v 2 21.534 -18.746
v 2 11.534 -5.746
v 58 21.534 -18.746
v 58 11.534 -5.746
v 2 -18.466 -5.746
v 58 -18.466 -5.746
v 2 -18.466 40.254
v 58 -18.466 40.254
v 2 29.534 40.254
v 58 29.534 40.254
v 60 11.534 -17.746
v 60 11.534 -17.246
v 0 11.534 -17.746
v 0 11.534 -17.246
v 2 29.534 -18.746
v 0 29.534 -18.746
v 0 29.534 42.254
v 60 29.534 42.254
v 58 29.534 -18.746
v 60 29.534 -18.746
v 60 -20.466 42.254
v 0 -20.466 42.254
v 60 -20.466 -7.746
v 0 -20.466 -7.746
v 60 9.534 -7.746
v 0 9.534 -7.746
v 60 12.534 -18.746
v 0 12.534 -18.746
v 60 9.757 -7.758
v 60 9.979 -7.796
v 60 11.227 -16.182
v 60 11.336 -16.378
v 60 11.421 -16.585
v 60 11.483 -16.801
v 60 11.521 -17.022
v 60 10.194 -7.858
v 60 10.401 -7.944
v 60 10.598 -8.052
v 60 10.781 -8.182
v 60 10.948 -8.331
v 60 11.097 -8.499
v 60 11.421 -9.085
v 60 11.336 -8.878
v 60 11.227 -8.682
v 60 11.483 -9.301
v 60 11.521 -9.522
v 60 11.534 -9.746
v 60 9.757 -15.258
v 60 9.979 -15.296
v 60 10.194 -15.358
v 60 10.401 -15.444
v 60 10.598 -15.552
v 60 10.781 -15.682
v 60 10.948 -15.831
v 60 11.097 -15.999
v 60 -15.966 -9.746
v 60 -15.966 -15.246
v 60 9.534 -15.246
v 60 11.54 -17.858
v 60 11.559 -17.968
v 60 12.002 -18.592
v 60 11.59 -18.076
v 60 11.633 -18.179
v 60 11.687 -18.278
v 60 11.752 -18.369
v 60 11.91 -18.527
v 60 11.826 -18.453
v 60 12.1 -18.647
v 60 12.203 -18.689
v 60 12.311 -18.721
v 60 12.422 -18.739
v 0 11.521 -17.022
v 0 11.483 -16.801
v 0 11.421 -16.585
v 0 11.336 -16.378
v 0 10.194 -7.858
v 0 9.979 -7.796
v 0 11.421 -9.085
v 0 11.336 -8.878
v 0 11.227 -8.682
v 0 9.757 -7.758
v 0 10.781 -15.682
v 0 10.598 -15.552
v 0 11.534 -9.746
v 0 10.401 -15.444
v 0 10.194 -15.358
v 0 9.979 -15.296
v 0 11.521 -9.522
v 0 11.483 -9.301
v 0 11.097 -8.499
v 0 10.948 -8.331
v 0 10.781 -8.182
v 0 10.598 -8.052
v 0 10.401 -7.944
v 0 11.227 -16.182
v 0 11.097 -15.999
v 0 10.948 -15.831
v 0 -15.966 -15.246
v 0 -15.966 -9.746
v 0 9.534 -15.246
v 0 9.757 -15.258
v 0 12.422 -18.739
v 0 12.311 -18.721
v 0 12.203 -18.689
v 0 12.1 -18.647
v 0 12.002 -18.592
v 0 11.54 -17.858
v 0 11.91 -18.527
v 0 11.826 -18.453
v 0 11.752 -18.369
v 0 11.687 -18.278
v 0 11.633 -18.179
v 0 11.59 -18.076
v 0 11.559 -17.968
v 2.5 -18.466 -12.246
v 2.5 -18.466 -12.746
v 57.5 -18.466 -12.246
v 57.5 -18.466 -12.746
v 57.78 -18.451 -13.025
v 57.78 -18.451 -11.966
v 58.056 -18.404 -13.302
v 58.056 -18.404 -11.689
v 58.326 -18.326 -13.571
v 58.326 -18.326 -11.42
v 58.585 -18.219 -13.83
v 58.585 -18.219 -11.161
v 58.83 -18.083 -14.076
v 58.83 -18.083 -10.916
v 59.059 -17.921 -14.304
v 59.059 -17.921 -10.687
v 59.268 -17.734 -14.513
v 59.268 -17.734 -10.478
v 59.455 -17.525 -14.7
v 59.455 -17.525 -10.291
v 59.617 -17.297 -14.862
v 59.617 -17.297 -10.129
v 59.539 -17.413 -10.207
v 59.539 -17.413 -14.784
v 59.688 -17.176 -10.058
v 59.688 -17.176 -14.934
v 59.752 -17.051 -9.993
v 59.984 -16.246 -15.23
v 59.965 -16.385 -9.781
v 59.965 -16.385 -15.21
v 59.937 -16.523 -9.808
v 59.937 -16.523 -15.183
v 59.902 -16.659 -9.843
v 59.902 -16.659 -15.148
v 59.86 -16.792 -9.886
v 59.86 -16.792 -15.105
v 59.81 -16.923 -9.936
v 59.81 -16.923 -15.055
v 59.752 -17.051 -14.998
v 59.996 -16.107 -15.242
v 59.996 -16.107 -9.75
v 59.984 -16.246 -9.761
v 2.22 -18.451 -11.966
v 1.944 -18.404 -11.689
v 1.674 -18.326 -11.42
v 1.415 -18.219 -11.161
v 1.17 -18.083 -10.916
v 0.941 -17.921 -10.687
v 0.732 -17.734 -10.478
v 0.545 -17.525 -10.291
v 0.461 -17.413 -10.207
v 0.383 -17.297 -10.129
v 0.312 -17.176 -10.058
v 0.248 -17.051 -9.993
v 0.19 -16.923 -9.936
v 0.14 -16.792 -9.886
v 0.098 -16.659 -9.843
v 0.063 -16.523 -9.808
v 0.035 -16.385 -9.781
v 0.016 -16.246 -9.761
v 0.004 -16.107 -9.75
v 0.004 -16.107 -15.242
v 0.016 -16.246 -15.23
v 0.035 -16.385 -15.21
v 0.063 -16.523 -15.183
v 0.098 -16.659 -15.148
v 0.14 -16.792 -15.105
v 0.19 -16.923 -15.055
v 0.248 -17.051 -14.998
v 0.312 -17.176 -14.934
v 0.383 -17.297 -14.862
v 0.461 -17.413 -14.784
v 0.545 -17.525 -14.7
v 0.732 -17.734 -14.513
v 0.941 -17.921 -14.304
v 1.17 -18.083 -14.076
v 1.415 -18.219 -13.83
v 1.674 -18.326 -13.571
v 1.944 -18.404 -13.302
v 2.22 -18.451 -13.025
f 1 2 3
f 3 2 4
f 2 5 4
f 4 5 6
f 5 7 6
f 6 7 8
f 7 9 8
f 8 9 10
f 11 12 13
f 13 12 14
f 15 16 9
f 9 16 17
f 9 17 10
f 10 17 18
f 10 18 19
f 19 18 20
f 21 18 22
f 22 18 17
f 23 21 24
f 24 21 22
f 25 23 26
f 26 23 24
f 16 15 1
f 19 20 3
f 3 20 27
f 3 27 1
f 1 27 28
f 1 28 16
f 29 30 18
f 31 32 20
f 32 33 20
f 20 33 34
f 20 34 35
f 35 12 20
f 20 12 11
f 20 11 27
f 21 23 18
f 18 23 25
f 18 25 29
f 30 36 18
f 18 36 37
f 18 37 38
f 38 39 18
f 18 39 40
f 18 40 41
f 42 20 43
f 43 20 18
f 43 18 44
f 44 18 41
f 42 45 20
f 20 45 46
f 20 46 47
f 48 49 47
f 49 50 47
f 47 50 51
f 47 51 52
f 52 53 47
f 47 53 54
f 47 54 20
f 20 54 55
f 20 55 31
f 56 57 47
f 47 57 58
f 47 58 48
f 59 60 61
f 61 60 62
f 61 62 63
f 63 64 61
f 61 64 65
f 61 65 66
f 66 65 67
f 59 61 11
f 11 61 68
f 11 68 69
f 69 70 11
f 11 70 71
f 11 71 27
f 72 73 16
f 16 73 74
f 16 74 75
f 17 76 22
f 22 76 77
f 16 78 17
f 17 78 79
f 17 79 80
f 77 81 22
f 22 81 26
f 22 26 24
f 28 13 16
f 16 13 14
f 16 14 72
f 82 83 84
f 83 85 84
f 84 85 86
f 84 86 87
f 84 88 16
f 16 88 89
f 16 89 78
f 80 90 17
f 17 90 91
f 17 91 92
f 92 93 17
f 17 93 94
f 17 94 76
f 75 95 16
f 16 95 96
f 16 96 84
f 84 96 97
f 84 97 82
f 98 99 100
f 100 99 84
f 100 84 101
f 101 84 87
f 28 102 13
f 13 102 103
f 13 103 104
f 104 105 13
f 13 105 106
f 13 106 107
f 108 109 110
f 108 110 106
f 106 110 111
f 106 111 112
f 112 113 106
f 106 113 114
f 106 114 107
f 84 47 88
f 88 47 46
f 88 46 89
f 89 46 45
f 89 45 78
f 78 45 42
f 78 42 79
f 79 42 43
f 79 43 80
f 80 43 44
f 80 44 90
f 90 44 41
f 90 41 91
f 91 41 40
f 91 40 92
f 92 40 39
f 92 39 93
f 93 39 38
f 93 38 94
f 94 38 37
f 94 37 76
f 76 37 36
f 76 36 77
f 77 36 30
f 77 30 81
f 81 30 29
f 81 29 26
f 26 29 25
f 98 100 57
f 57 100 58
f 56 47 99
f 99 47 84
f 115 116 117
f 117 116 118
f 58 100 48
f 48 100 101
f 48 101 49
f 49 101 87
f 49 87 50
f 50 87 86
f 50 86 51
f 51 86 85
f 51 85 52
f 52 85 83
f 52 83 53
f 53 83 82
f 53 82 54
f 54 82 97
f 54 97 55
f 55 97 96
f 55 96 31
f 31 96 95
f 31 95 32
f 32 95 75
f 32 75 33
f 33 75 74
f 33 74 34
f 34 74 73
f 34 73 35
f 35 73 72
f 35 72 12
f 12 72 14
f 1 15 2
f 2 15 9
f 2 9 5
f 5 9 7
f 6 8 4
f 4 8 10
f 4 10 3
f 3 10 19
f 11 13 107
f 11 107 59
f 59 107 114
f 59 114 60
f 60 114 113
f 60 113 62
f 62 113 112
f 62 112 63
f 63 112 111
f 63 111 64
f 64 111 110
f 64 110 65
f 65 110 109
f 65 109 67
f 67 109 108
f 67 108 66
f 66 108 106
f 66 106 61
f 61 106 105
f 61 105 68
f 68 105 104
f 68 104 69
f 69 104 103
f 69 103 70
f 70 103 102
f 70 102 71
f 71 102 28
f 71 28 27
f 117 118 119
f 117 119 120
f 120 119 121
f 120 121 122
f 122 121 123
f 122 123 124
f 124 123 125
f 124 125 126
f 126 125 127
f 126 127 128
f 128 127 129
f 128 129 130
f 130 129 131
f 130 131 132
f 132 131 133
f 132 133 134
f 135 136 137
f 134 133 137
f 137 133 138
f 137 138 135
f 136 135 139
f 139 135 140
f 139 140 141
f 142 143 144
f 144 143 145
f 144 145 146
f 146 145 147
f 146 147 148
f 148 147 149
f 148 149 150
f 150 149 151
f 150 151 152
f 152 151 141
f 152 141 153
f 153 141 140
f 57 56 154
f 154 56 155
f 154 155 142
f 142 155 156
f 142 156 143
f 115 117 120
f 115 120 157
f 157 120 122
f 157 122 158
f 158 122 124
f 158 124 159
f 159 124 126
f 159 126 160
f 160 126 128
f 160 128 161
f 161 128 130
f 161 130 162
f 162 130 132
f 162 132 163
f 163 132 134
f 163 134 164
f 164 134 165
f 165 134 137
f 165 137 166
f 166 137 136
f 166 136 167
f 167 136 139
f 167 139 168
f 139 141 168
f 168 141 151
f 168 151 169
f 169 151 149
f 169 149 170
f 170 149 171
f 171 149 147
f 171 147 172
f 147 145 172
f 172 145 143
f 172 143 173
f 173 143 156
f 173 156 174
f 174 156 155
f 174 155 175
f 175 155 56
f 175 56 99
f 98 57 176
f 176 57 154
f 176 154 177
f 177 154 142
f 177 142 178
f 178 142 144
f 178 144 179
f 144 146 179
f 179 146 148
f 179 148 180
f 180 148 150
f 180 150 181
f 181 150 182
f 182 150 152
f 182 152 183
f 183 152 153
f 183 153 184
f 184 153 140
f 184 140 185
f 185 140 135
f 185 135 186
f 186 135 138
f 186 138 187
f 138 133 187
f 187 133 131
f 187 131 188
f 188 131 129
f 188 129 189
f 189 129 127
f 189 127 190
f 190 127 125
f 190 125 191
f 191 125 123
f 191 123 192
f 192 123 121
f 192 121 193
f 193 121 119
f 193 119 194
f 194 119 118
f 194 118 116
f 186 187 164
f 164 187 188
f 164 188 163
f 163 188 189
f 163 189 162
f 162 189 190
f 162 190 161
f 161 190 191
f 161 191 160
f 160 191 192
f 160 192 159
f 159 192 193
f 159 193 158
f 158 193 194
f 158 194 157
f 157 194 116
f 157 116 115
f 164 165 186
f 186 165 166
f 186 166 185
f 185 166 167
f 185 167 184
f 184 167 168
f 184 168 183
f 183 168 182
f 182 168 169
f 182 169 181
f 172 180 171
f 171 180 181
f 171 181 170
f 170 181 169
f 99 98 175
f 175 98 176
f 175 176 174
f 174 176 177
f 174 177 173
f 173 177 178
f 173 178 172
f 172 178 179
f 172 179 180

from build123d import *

# Parameters (mm, degrees)
EXTRUDE_1_DEPTH = 60
FILLET_1_R      = 2
SKETCH_2_W      = 60
SKETCH_2_H      = 5.5
EXTRUDE_2_DEPTH = 30
FILLET_3_R      = 2
SKETCH_3_W      = 2
SKETCH_3_H      = 46
EXTRUDE_3_DEPTH = 48
SKETCH_4_W      = 2
SKETCH_4_H      = 18
EXTRUDE_4_DEPTH = 13
SKETCH_5_W      = 2
SKETCH_5_H      = 18
EXTRUDE_5_DEPTH = 13
FILLET_4_R      = 1
FILLET_5_R      = 2.5


with BuildPart() as part:
    # 草圖1 → 填料-伸長1 (new body)
    with BuildSketch(Plane(origin=(0, 0, 0), x_dir=(0, 0, -1), z_dir=(1, 0, 0))):
        Polygon((-42.254416961, 29.533568905), (-42.254416961, -20.466431095), (7.745583039, -20.466431095), (7.745583039, 11.533568905), (18.745583039, 11.533568905), (18.745583039, 21.533568905), (5.745583039, 11.533568905), (5.745583039, -18.466431095), (-40.254416961, -18.466431095), (-40.254416961, 29.533568905), align=None)
    extrude(amount=EXTRUDE_1_DEPTH)

    # 圓角1
    fillet_1_edges = [part.edges().sort_by_distance(p)[0] for p in [
        (30, 11.533568905, -7.745583039),
    ]]
    fillet(fillet_1_edges, radius=FILLET_1_R)

    # 草圖2 → 填料-伸長2 (add)
    with BuildSketch(Plane.XZ.offset(-11.533568905)):
        with Locations((30, -12.495583039)):
            Rectangle(SKETCH_2_W, SKETCH_2_H)
    extrude(amount=EXTRUDE_2_DEPTH)

    # 圓角3
    fillet_3_edges = [part.edges().sort_by_distance(p)[0] for p in [
        (30, 11.533568905, -15.245583039),
    ]]
    fillet(fillet_3_edges, radius=FILLET_3_R)

    # 草圖3 → 填料-伸長3 (add)
    with BuildSketch(Plane(origin=(0, -18.466431095, 0), x_dir=(1, 0, 0), z_dir=(0, 1, 0))):
        with Locations((1, -17.254416961)):
            Rectangle(SKETCH_3_W, SKETCH_3_H)
        with Locations((59, -17.254416961)):
            Rectangle(SKETCH_3_W, SKETCH_3_H)
    extrude(amount=EXTRUDE_3_DEPTH)

    # 草圖4 → 填料-伸長4 (add)
    with BuildSketch(Plane(origin=(0, 0, -5.745583039), x_dir=(-1, 0, 0), z_dir=(0, 0, -1))):
        with Locations((-1, 20.533568905)):
            Rectangle(SKETCH_4_W, SKETCH_4_H)
    extrude(amount=EXTRUDE_4_DEPTH)

    # 草圖5 → 填料-伸長5 (add)
    with BuildSketch(Plane(origin=(0, 0, -5.745583039), x_dir=(-1, 0, 0), z_dir=(0, 0, -1))):
        with Locations((-59, 20.533568905)):
            Rectangle(SKETCH_5_W, SKETCH_5_H)
    extrude(amount=EXTRUDE_5_DEPTH)

    # 圓角4
    fillet_4_edges = [part.edges().sort_by_distance(p)[0] for p in [
        (30, 11.533568905, -18.745583039),
    ]]
    fillet(fillet_4_edges, radius=FILLET_4_R)

    # 圓角5
    fillet_5_edges = [part.edges().sort_by_distance(p)[0] for p in [
        (60, -18.466431095, -12.495583039),
        (30, -18.466431095, -9.745583039),
        (30, -18.466431095, -15.245583039),
        (0, -18.466431095, -12.495583039),
    ]]
    fillet(fillet_5_edges, radius=FILLET_5_R)


solid = part.part
